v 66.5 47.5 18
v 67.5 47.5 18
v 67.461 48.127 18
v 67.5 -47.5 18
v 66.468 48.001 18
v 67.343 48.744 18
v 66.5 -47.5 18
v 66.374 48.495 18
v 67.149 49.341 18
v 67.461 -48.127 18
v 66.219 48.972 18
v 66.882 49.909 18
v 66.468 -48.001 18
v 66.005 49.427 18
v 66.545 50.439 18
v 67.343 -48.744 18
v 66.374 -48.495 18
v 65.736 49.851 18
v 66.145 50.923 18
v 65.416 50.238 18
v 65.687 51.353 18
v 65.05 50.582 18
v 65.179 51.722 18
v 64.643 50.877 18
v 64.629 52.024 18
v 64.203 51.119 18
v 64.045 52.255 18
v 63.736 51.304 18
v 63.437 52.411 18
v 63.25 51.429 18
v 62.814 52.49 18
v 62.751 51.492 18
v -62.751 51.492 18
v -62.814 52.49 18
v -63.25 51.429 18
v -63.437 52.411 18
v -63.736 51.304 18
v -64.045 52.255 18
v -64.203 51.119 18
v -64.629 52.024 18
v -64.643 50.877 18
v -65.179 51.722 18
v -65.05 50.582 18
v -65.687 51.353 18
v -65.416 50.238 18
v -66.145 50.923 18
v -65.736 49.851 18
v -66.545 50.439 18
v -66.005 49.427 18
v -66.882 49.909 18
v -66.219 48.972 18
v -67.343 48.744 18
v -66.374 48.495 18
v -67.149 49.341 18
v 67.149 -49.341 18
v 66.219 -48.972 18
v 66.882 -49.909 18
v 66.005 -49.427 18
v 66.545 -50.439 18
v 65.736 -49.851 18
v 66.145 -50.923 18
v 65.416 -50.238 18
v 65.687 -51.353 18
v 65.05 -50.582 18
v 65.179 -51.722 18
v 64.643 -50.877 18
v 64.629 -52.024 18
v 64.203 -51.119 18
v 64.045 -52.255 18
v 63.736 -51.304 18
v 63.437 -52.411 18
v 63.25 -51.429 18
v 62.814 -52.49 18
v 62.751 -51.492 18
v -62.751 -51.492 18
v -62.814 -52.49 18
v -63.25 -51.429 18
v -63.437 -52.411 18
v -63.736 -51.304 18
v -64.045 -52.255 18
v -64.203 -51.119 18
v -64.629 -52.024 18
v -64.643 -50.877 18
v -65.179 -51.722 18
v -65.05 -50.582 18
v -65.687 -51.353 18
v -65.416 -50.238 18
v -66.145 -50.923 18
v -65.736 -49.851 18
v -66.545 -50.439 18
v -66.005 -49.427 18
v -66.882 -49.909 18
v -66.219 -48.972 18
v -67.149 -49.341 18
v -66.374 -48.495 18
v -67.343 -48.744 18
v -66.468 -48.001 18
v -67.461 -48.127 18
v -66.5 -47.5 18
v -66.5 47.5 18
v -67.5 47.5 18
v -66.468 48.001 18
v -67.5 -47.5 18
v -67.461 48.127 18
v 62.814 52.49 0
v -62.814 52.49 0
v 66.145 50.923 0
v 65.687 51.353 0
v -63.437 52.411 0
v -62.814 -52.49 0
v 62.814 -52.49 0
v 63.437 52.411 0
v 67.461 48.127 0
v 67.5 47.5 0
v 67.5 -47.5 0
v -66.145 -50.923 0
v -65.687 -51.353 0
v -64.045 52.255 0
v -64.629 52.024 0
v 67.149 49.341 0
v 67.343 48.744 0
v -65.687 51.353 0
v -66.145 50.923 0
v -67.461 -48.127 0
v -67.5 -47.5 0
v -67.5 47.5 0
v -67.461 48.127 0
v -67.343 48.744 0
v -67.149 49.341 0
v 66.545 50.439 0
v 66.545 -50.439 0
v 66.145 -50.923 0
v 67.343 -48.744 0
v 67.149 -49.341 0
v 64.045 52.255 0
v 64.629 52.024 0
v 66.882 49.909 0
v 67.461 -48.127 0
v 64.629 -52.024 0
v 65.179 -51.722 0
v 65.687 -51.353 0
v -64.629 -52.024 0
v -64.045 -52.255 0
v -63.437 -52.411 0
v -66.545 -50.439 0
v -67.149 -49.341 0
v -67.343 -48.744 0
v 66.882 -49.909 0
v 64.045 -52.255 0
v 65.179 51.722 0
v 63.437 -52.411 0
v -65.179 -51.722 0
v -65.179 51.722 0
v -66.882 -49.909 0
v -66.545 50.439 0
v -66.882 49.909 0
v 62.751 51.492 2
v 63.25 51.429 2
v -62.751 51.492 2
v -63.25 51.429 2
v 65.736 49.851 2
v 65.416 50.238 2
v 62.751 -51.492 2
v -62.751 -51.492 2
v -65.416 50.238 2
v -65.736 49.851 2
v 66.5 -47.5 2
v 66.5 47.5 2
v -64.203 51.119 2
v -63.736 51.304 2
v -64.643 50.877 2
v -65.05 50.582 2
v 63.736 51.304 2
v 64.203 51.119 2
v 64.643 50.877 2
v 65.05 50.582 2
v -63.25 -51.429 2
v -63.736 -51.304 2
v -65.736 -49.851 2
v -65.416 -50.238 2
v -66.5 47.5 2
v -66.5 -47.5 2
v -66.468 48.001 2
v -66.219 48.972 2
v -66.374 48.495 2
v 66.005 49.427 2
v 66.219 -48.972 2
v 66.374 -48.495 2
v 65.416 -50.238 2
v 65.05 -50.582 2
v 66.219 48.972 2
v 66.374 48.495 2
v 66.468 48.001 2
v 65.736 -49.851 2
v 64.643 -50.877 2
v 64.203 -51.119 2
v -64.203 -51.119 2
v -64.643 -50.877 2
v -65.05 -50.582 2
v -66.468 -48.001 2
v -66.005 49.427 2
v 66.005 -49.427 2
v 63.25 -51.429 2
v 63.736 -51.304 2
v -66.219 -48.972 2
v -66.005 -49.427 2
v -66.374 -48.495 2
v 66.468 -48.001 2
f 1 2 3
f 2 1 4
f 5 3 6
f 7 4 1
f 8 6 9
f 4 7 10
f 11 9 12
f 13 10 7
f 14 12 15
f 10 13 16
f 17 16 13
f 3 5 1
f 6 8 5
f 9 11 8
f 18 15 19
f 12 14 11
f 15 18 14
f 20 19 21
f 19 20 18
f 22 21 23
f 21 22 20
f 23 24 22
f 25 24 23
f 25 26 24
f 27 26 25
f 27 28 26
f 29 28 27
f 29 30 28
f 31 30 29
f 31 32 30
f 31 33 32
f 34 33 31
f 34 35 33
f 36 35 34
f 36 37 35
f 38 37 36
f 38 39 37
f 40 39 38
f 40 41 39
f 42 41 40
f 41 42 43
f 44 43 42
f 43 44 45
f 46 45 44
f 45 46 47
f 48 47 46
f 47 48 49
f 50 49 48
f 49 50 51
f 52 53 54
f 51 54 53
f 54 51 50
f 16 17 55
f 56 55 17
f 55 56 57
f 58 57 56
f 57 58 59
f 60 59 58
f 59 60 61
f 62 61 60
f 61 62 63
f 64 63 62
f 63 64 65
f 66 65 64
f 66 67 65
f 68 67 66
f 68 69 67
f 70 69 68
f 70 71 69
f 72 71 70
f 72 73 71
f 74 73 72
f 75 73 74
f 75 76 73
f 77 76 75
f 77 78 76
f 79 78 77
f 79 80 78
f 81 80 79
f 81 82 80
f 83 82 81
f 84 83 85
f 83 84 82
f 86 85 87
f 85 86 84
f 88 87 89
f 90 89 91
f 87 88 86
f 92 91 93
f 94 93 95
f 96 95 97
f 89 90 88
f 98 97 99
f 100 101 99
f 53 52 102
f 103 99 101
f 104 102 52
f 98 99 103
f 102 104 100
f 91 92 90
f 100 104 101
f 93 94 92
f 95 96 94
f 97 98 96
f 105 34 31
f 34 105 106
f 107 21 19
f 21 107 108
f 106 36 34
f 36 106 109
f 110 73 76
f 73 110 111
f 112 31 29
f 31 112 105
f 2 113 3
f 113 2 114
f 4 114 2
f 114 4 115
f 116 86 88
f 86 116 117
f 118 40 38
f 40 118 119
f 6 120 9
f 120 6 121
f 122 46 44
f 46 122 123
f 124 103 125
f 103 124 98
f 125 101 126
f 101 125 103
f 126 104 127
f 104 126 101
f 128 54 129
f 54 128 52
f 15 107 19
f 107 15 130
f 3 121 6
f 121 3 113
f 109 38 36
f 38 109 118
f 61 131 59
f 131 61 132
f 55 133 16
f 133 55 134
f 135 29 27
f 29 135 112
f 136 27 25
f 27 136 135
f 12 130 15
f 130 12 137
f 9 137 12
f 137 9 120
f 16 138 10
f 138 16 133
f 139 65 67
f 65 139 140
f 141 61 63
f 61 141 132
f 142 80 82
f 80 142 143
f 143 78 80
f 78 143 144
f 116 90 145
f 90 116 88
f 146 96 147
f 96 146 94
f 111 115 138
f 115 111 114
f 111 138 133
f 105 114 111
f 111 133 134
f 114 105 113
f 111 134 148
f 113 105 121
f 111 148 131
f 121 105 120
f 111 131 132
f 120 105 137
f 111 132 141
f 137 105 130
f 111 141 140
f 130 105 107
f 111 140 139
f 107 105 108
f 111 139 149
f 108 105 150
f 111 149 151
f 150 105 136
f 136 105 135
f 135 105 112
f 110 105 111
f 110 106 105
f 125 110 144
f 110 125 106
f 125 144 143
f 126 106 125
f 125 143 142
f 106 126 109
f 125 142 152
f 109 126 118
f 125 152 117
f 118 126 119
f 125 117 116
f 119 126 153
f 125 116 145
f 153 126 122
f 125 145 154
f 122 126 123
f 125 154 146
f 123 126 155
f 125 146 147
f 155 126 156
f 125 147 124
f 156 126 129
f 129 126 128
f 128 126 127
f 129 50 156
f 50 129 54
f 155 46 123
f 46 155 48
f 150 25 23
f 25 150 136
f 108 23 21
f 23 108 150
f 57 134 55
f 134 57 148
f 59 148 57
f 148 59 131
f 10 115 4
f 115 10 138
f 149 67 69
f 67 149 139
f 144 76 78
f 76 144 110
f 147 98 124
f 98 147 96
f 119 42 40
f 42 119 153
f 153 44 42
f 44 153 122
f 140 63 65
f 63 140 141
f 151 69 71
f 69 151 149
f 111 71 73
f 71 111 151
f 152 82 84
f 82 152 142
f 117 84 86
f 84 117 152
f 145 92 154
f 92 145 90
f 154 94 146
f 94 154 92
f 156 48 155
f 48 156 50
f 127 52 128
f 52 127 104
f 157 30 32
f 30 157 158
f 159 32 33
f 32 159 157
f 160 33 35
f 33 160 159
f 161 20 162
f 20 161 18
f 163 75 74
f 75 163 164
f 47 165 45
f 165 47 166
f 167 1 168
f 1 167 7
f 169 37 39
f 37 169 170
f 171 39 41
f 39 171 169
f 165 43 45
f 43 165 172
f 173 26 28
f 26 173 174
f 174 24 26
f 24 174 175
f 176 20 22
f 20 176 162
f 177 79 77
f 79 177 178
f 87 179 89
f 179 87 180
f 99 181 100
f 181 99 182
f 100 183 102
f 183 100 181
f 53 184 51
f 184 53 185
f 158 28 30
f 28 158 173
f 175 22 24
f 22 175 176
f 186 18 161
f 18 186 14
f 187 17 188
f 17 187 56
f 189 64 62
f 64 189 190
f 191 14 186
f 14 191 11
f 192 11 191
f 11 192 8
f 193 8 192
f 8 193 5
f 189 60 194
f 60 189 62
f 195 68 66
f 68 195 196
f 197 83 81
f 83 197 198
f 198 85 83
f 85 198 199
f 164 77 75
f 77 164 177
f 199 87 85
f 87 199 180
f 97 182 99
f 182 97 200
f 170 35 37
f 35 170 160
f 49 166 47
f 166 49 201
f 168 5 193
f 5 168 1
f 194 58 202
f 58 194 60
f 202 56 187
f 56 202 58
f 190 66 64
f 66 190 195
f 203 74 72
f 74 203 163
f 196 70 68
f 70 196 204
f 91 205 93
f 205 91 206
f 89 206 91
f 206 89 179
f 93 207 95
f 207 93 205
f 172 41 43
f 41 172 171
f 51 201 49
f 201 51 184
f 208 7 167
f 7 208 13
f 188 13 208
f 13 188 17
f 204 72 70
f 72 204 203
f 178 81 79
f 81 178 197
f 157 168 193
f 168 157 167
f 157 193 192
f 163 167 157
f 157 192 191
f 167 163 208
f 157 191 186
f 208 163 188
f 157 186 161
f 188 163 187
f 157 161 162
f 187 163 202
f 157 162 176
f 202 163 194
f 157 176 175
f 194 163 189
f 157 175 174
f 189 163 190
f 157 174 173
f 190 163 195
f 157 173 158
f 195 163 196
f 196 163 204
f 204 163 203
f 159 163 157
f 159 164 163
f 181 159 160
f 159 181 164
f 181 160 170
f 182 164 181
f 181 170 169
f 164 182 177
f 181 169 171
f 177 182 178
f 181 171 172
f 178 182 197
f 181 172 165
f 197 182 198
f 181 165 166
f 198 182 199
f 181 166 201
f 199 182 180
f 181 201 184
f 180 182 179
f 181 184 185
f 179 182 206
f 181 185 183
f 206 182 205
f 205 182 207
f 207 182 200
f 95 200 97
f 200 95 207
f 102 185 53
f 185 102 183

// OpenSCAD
$fn = 50;


difference() {
	union() {
		hull() {
			translate(v = [-62.5000000000, 47.5000000000, 0]) {
				cylinder(h = 18, r = 5);
			}
			translate(v = [62.5000000000, 47.5000000000, 0]) {
				cylinder(h = 18, r = 5);
			}
			translate(v = [-62.5000000000, -47.5000000000, 0]) {
				cylinder(h = 18, r = 5);
			}
			translate(v = [62.5000000000, -47.5000000000, 0]) {
				cylinder(h = 18, r = 5);
			}
		}
	}
	union() {
		translate(v = [0, 0, 2]) {
			hull() {
				translate(v = [-62.5000000000, 47.5000000000, 0]) {
					cylinder(h = 16, r = 4);
				}
				translate(v = [62.5000000000, 47.5000000000, 0]) {
					cylinder(h = 16, r = 4);
				}
				translate(v = [-62.5000000000, -47.5000000000, 0]) {
					cylinder(h = 16, r = 4);
				}
				translate(v = [62.5000000000, -47.5000000000, 0]) {
					cylinder(h = 16, r = 4);
				}
			}
		}
	}
}
